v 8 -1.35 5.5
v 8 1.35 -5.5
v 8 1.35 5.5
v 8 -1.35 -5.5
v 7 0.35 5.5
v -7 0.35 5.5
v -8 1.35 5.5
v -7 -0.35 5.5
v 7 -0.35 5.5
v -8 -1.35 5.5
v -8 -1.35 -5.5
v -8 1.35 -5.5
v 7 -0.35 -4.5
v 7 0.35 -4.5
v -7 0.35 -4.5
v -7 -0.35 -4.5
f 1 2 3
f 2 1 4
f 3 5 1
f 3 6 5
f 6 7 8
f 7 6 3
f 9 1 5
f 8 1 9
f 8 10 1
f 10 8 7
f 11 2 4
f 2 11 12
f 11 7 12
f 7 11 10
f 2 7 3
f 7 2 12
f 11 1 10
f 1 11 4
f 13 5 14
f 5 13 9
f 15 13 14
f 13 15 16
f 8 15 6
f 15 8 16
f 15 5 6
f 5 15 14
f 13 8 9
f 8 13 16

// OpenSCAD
slotWidth = 0.7;
slotLength= 14;
slotDepth = 10;
wallThickness = 1;

difference(){
	cube([slotLength+2*wallThickness, slotWidth+2*wallThickness, slotDepth+wallThickness], center=true);
	#translate([0, 0, wallThickness/2])
		cube([slotLength, slotWidth, slotDepth], center=true);
}
